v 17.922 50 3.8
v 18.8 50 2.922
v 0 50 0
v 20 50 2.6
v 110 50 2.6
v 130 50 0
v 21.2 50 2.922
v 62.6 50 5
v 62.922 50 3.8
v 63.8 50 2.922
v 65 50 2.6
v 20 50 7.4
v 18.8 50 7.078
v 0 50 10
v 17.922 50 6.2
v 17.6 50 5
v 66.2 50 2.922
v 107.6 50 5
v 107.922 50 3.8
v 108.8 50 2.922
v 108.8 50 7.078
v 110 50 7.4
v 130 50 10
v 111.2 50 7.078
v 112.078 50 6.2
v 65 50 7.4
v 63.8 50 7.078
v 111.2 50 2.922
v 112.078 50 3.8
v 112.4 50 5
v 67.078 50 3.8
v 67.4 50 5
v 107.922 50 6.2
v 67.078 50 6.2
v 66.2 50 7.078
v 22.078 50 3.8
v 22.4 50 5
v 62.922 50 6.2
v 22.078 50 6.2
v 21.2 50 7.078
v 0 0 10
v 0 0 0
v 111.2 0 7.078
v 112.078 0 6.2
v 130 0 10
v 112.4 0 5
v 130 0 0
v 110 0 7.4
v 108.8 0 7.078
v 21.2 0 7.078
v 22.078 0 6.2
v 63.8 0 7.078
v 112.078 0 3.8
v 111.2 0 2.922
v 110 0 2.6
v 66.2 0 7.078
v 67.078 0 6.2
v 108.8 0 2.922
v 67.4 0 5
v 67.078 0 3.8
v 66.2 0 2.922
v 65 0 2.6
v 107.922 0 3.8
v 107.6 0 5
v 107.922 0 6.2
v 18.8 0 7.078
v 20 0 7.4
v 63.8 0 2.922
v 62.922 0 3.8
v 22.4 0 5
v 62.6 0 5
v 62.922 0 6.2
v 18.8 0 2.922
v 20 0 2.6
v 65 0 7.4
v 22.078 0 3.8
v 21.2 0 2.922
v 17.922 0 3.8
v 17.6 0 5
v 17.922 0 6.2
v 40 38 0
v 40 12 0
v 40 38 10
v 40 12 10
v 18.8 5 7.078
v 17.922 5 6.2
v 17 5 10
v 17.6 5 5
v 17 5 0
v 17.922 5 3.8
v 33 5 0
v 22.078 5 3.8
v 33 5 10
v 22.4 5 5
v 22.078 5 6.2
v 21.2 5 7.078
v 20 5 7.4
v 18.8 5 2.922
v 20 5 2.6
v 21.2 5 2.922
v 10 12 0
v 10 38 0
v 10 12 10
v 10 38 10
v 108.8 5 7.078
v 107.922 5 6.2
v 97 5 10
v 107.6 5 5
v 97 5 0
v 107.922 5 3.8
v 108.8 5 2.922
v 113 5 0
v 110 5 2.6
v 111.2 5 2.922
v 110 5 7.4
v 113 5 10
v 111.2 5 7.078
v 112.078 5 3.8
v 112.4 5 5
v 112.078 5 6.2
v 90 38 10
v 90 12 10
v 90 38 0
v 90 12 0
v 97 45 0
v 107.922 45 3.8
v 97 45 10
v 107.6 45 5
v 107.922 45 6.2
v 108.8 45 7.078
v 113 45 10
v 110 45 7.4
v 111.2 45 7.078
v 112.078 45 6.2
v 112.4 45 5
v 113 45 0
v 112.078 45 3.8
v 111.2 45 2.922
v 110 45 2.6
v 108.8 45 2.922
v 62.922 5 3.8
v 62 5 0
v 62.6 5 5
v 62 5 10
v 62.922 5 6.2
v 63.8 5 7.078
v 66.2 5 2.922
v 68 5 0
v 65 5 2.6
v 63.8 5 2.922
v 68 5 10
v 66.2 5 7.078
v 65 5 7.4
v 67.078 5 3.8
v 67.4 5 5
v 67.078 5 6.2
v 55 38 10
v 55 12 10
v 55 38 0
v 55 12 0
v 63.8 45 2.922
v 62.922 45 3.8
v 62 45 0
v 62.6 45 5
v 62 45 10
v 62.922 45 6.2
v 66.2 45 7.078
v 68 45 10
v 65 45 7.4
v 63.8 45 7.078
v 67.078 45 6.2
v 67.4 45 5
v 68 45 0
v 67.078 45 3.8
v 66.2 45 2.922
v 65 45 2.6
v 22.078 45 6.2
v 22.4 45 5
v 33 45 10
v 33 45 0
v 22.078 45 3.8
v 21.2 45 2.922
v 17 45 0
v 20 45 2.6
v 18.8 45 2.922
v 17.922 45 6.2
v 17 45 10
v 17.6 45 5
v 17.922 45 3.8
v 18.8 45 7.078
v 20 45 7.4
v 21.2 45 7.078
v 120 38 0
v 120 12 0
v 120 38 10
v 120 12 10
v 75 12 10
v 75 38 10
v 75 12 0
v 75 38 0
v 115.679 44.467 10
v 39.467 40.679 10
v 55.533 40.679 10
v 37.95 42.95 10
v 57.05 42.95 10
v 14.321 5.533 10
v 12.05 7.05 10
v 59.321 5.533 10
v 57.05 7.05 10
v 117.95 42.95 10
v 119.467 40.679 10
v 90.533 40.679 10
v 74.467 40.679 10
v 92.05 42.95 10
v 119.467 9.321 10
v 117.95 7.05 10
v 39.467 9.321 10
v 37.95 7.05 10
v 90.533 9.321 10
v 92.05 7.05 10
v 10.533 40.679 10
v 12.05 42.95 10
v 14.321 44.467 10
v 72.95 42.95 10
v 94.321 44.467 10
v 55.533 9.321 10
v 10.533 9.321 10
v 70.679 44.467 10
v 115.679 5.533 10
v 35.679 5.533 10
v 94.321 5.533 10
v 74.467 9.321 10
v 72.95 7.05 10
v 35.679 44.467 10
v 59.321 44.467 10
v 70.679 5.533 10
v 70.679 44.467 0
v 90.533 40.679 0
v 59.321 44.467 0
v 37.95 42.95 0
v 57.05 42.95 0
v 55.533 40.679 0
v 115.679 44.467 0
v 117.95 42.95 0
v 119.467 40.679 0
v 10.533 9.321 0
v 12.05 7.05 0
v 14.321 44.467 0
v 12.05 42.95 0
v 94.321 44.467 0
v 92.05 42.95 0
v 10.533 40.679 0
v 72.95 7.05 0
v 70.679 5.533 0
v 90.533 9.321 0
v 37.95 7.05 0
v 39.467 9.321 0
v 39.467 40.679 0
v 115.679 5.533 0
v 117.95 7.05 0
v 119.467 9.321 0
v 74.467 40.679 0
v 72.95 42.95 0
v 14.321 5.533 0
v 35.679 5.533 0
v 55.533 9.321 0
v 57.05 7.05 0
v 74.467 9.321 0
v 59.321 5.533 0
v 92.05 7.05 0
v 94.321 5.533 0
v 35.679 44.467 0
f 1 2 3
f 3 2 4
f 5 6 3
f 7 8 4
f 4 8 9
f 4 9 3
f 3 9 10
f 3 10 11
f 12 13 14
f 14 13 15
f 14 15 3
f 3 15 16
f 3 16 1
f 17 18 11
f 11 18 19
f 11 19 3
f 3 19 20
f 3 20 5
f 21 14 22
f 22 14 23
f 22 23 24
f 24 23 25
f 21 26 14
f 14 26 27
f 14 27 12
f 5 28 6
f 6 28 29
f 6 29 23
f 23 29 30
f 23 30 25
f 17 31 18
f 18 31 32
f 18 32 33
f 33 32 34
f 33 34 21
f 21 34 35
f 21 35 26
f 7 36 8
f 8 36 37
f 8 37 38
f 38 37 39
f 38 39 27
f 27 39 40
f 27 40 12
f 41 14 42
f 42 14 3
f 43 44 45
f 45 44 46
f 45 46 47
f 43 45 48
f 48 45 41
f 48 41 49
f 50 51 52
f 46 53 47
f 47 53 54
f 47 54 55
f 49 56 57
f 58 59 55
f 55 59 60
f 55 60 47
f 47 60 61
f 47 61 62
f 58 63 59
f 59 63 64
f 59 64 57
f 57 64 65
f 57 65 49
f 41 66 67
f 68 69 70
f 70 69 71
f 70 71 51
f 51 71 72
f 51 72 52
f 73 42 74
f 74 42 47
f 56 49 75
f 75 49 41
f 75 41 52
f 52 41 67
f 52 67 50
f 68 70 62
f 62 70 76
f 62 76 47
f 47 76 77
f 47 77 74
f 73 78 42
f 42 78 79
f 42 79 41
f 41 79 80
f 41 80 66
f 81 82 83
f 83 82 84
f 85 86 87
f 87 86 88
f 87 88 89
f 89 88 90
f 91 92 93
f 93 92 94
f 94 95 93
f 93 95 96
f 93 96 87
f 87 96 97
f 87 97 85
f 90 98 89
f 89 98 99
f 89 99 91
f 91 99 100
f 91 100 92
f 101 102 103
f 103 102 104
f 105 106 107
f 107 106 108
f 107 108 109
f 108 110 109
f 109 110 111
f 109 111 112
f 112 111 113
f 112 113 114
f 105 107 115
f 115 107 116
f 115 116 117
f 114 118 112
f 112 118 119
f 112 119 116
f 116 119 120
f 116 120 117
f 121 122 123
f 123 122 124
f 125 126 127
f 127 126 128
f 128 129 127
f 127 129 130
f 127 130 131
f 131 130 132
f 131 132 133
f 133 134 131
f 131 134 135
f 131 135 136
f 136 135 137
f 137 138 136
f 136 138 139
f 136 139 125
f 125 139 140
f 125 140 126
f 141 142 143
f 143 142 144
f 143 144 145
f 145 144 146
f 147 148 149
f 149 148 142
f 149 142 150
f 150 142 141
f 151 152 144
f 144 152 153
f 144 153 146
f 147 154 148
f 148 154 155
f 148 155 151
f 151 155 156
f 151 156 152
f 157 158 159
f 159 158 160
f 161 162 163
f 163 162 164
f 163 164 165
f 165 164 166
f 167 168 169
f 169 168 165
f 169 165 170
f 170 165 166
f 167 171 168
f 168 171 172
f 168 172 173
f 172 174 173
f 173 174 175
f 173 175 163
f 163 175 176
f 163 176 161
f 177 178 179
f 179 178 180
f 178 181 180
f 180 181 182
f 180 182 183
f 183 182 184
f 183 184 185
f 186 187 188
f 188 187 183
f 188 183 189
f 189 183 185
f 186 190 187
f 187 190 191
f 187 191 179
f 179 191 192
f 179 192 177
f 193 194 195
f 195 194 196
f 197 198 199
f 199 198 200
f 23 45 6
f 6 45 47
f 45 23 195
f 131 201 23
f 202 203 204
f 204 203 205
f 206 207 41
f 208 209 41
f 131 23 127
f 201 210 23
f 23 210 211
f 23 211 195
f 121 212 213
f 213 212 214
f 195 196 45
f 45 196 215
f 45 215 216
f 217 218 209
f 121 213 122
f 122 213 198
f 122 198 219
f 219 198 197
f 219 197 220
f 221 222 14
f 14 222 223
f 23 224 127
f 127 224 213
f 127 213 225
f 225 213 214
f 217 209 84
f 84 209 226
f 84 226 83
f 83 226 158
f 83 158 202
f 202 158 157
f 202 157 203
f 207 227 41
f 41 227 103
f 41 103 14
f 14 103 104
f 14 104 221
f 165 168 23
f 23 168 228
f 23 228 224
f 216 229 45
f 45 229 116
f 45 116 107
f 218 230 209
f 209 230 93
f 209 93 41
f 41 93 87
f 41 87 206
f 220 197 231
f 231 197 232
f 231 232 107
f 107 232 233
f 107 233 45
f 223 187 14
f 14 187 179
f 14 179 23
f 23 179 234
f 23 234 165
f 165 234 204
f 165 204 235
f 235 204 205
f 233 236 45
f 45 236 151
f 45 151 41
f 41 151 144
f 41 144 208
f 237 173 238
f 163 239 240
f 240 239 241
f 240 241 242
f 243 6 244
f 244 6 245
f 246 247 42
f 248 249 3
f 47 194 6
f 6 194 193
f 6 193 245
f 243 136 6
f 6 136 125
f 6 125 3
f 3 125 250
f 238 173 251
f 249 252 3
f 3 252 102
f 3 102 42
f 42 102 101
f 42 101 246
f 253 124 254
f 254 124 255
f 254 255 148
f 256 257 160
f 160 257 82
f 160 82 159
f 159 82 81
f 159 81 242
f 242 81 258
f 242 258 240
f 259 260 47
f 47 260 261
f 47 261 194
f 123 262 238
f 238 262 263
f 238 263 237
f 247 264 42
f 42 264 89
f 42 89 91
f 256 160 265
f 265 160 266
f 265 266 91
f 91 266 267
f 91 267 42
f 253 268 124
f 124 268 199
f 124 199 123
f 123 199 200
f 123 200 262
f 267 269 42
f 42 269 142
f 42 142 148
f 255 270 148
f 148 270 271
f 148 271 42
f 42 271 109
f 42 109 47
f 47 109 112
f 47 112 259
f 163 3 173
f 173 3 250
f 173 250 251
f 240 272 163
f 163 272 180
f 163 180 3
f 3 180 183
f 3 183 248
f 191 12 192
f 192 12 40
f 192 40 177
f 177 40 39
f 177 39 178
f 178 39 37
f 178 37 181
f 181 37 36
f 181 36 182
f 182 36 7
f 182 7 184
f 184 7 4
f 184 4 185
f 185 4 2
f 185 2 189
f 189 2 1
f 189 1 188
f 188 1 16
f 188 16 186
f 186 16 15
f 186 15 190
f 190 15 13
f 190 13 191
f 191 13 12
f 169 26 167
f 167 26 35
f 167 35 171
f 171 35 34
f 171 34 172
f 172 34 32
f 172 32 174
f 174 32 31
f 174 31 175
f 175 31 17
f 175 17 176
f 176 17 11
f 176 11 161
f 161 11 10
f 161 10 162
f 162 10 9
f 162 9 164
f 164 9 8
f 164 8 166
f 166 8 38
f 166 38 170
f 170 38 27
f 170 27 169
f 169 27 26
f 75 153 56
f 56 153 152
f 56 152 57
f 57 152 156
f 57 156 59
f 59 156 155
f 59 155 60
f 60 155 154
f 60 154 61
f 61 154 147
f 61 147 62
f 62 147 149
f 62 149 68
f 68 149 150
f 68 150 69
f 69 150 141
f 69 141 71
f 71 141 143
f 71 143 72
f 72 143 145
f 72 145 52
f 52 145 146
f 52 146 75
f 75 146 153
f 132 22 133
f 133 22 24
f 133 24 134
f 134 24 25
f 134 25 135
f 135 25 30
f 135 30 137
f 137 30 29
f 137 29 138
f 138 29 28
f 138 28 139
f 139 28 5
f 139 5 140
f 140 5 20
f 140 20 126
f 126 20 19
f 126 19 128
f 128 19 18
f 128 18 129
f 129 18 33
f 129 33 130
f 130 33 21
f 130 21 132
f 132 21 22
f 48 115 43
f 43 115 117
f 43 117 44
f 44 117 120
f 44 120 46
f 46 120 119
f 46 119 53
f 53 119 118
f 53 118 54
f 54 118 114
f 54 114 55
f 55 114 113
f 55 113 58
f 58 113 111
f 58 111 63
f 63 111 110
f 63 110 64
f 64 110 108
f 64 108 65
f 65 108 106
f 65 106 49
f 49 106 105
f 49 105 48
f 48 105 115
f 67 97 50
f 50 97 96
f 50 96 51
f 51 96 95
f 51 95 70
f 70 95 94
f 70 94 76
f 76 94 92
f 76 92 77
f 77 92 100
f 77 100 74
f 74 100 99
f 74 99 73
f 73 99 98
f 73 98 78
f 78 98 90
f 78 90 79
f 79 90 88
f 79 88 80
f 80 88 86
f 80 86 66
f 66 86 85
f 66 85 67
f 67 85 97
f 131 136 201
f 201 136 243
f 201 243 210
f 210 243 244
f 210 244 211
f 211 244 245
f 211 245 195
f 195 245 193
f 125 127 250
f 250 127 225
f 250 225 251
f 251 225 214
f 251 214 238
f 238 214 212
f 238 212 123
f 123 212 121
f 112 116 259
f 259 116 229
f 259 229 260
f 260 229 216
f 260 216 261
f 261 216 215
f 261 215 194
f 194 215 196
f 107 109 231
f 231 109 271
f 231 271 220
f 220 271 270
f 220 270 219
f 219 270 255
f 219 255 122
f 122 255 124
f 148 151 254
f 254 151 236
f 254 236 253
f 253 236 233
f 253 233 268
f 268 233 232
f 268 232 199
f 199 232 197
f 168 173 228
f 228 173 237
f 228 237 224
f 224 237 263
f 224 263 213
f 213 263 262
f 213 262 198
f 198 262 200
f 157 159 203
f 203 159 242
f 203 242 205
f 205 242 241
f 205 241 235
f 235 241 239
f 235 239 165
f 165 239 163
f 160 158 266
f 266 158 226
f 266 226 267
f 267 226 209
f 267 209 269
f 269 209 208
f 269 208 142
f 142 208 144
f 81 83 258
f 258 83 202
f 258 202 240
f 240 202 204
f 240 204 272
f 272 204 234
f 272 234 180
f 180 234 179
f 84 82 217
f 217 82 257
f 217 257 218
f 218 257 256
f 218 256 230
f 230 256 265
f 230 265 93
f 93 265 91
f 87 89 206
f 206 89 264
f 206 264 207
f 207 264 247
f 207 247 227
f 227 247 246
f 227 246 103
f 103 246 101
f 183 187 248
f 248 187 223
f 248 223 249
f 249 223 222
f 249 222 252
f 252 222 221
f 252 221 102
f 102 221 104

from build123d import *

# Parameters (mm, degrees)
ESQUISSE1_W             = 130
ESQUISSE1_H             = 50
ESQUISSE1_W_2           = 110
ESQUISSE1_H_2           = 40
ESQUISSE1_W_3           = 15
BOSS_EXTRU_1_DEPTH      = 10
ESQUISSE2_R             = 2.4
ENL_V_MAT_EXTRU_1_DEPTH = 140.642400438
CONG_1_R                = 7


with BuildPart() as part:
    # Esquisse1 → Boss.-Extru.1 (new body)
    # profile 1 of 3: a face of its own
    with BuildSketch(Plane.XY):
        with Locations((65, 25)):
            Rectangle(ESQUISSE1_W, ESQUISSE1_H)
        with Locations((65, 25)):
            Rectangle(ESQUISSE1_W_2, ESQUISSE1_H_2, mode=Mode.SUBTRACT)
    # profile 2 of 3: a face of its own
    with BuildSketch(Plane.XY):
        with Locations((47.5, 25)):
            Rectangle(ESQUISSE1_W_3, ESQUISSE1_H_2)
    # profile 3 of 3: a face of its own
    with BuildSketch(Plane.XY):
        with Locations((82.5, 25)):
            Rectangle(ESQUISSE1_W_3, ESQUISSE1_H_2)
    extrude(amount=BOSS_EXTRU_1_DEPTH)

    # Esquisse2 → Enlèv. mat.-Extru.1 (cut, through all)
    with BuildSketch(Plane(origin=(0, 50, 0), x_dir=(1, 0, 0), z_dir=(0, 1, 0))):
        with Locations(Location((20, -5, 0), (0, 0, 270))):
            Circle(ESQUISSE2_R)
        with Locations(Location((65, -5, 0), (0, 0, 270))):
            Circle(ESQUISSE2_R)
        with Locations(Location((110, -5, 0), (0, 0, 270))):
            Circle(ESQUISSE2_R)
    extrude(amount=-ENL_V_MAT_EXTRU_1_DEPTH, mode=Mode.SUBTRACT)

    # Congé1
    cong_1_edges = [part.edges().sort_by_distance(p)[0] for p in [
        (40, 45, 5),
        (10, 45, 5),
        (10, 5, 5),
        (40, 5, 5),
        (120, 5, 5),
        (120, 45, 5),
        (90, 45, 5),
        (90, 5, 5),
        (75, 5, 5),
        (75, 45, 5),
        (55, 45, 5),
        (55, 5, 5),
    ]]
    fillet(cong_1_edges, radius=CONG_1_R)


solid = part.part
